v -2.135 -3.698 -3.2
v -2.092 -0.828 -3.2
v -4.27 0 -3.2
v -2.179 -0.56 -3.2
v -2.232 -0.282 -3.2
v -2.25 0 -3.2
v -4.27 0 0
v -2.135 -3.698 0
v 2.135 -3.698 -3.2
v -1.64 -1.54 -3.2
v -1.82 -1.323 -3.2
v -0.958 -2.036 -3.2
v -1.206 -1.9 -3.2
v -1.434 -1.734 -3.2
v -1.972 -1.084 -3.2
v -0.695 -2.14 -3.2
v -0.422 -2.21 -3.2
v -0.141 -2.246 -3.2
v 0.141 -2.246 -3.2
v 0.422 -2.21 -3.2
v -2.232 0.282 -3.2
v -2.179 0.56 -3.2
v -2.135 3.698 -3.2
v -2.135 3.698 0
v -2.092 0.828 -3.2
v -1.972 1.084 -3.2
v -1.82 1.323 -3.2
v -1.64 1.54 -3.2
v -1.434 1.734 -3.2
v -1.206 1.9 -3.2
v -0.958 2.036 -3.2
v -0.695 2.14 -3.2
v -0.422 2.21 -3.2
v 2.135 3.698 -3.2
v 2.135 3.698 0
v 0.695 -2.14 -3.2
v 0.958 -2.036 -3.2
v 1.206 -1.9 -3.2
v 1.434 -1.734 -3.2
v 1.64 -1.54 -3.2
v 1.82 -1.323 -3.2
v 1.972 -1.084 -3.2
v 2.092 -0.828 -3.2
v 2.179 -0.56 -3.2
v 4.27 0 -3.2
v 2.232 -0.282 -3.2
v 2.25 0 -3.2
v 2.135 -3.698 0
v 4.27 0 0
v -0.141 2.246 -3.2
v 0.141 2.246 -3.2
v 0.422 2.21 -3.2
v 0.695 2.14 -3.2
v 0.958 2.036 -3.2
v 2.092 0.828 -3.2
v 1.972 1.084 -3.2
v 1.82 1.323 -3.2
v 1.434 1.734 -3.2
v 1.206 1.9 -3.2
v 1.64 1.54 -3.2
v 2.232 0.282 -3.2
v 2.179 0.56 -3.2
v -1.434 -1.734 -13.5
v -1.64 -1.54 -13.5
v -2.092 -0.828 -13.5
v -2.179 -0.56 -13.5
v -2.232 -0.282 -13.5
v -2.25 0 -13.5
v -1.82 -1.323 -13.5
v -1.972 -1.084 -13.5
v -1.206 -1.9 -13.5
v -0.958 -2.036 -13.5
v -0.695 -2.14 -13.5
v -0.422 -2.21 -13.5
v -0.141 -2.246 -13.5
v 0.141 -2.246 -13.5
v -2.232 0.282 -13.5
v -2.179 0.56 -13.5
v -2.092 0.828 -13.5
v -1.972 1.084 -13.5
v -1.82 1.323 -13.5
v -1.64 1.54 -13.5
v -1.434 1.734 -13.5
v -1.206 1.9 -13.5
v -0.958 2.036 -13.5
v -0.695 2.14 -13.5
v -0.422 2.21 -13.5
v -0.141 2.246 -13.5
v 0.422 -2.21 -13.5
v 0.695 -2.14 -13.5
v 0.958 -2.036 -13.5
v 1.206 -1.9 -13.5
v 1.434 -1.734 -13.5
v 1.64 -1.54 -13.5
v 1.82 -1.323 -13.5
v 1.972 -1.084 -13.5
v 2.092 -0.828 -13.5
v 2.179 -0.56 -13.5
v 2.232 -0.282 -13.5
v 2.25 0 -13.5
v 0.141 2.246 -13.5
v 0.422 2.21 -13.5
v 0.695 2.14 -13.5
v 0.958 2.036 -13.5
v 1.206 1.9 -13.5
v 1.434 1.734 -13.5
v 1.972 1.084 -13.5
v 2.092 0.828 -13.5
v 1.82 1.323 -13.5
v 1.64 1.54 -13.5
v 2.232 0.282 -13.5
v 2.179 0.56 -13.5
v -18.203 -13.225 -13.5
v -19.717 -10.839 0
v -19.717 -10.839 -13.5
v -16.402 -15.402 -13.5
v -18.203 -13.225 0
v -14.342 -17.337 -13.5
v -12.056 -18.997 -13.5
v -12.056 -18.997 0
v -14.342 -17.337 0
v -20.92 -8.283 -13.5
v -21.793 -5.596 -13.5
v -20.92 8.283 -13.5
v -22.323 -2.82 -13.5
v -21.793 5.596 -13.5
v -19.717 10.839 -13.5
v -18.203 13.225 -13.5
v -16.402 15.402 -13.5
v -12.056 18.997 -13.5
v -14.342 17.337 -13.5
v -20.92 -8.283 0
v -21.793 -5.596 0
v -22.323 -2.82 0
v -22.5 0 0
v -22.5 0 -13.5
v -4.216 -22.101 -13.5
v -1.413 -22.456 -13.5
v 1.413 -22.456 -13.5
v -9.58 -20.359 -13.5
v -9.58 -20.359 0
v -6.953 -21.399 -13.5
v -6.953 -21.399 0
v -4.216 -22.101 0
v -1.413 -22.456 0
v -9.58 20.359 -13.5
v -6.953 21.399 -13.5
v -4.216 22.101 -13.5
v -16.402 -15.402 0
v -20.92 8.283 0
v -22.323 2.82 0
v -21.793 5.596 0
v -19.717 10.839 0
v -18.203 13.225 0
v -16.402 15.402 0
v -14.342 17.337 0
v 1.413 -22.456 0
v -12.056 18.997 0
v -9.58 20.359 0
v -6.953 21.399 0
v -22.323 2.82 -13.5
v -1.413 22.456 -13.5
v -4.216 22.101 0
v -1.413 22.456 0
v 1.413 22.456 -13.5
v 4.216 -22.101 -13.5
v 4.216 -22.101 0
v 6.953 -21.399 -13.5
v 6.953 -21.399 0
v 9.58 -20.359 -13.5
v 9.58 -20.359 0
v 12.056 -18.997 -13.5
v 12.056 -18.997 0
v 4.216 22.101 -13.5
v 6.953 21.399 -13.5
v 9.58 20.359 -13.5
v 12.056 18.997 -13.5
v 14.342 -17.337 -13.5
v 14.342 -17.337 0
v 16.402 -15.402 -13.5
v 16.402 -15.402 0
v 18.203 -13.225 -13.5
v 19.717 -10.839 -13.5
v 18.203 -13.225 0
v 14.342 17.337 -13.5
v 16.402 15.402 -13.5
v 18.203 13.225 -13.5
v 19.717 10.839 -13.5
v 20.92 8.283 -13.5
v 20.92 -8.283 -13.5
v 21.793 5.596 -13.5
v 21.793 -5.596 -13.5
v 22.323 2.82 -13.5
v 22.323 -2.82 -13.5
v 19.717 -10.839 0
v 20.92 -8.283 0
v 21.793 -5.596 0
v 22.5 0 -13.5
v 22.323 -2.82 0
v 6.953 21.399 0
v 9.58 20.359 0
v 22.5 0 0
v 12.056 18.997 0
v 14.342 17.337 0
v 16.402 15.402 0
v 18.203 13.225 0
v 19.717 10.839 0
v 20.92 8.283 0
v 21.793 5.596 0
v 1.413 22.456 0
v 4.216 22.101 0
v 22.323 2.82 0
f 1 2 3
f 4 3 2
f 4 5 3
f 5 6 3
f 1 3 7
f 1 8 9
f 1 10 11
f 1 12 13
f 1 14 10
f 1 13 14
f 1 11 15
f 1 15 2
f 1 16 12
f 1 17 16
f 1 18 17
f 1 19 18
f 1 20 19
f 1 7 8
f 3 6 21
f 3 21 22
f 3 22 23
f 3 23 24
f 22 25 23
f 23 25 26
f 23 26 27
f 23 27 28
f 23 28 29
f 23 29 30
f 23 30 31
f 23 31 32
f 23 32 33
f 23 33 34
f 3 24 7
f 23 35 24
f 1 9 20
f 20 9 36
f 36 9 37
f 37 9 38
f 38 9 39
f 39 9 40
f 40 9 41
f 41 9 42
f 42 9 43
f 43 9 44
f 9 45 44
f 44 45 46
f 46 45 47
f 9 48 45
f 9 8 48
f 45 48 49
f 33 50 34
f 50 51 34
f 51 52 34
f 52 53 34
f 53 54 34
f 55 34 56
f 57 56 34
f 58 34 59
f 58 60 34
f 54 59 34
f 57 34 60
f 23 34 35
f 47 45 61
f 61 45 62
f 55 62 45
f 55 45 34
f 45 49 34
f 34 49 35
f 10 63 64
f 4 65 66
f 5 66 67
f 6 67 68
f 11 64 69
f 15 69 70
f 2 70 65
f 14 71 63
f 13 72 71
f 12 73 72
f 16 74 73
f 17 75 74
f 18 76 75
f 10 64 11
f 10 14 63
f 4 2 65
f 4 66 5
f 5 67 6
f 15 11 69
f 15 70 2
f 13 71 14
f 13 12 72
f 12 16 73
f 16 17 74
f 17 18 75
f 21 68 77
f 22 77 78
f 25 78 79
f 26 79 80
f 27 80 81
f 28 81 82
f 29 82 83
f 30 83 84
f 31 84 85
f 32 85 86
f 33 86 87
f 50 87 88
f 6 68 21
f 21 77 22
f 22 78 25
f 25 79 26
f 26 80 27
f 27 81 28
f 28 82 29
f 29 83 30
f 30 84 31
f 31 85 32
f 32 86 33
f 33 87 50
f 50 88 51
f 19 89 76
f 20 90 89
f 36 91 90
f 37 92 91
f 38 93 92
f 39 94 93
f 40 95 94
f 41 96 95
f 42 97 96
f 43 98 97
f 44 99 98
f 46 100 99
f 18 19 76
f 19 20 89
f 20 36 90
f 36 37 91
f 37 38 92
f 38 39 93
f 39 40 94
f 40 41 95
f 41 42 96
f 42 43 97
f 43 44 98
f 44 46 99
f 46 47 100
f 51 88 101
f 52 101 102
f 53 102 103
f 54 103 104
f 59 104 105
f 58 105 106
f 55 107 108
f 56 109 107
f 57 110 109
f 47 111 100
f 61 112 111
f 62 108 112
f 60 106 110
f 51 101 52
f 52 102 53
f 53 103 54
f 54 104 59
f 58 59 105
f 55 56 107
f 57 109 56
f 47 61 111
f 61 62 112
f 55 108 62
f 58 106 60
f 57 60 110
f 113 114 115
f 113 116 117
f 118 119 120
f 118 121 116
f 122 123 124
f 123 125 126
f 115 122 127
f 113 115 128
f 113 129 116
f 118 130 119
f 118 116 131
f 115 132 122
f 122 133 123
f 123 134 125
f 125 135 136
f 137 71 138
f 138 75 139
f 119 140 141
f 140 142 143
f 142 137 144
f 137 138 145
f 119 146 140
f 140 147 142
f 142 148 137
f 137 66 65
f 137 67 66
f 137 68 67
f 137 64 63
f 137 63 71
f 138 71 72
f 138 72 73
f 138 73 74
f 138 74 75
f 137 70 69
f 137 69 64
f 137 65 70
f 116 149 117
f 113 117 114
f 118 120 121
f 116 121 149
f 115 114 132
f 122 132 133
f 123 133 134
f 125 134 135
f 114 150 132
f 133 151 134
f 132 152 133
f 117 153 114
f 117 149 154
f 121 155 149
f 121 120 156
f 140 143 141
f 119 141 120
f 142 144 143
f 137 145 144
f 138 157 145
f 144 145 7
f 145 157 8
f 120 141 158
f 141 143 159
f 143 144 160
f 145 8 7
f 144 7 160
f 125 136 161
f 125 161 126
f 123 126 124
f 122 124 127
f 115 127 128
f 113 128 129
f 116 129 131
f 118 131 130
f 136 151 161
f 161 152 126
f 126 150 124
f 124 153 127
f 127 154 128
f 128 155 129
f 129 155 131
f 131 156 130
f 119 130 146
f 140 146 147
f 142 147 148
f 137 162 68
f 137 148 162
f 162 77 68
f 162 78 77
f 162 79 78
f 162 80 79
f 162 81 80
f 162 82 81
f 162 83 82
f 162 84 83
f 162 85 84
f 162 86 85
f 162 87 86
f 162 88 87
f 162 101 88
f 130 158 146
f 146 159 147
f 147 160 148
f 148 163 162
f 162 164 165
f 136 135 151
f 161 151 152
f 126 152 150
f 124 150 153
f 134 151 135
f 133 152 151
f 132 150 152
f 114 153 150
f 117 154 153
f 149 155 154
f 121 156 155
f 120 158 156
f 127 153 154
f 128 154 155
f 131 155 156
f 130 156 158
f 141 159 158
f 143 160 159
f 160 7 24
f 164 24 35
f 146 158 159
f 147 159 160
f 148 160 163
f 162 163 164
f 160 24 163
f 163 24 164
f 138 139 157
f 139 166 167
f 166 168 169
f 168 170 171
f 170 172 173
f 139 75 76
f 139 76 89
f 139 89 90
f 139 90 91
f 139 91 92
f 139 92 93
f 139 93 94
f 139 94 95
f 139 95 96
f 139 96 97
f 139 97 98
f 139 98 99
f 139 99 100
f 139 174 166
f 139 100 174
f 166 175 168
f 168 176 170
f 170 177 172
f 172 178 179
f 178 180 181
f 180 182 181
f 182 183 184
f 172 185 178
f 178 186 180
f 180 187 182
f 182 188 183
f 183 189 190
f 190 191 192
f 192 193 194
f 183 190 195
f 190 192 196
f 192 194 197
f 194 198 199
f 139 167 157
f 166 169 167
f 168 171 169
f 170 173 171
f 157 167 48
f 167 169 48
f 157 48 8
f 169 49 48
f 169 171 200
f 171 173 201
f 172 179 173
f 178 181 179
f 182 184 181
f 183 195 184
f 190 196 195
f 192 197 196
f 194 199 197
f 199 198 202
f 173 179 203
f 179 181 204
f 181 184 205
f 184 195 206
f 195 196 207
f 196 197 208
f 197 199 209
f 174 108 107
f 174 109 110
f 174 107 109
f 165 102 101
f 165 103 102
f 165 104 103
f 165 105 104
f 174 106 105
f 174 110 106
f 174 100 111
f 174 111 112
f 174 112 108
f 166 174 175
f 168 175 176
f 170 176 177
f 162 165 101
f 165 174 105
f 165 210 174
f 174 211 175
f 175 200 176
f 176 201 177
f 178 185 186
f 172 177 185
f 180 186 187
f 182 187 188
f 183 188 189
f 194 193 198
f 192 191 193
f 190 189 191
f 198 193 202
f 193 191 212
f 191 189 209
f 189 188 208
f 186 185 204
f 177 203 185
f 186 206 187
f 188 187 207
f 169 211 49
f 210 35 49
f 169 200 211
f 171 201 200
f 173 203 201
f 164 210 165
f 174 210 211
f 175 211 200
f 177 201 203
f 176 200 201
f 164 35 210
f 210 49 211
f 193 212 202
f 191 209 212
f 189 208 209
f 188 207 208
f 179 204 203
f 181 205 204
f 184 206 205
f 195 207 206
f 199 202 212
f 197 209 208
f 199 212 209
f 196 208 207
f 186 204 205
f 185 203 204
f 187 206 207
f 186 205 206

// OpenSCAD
$fn = 50;

difference() {
	union() {
		translate(v = [0, 0, -13.5]) {
			cylinder(h = 13.5, r = 22.5);
		}
	}
	union() {
		translate(v = [0, 0, 0]) {
			rotate(a = [0, 0, 0]) {
				difference() {
					union() {
						translate(v = [0, 0, -3.2]) {
							linear_extrude(height = 3.2) {
								polygon(points = [[4.2698, 0.0], [2.1349000000000005, 3.697755269078796], [-2.134899999999999, 3.6977552690787965], [-4.2698, 5.228996902999369e-16], [-2.134900000000002, -3.6977552690787956], [2.1348999999999974, -3.697755269078798]]);
							}
						}
					}
					union();
				}
			}
		}
		#translate(v = [0, 0, -100.0]) {
			cylinder(h = 200, r = 2.25);
		}
	}
}
